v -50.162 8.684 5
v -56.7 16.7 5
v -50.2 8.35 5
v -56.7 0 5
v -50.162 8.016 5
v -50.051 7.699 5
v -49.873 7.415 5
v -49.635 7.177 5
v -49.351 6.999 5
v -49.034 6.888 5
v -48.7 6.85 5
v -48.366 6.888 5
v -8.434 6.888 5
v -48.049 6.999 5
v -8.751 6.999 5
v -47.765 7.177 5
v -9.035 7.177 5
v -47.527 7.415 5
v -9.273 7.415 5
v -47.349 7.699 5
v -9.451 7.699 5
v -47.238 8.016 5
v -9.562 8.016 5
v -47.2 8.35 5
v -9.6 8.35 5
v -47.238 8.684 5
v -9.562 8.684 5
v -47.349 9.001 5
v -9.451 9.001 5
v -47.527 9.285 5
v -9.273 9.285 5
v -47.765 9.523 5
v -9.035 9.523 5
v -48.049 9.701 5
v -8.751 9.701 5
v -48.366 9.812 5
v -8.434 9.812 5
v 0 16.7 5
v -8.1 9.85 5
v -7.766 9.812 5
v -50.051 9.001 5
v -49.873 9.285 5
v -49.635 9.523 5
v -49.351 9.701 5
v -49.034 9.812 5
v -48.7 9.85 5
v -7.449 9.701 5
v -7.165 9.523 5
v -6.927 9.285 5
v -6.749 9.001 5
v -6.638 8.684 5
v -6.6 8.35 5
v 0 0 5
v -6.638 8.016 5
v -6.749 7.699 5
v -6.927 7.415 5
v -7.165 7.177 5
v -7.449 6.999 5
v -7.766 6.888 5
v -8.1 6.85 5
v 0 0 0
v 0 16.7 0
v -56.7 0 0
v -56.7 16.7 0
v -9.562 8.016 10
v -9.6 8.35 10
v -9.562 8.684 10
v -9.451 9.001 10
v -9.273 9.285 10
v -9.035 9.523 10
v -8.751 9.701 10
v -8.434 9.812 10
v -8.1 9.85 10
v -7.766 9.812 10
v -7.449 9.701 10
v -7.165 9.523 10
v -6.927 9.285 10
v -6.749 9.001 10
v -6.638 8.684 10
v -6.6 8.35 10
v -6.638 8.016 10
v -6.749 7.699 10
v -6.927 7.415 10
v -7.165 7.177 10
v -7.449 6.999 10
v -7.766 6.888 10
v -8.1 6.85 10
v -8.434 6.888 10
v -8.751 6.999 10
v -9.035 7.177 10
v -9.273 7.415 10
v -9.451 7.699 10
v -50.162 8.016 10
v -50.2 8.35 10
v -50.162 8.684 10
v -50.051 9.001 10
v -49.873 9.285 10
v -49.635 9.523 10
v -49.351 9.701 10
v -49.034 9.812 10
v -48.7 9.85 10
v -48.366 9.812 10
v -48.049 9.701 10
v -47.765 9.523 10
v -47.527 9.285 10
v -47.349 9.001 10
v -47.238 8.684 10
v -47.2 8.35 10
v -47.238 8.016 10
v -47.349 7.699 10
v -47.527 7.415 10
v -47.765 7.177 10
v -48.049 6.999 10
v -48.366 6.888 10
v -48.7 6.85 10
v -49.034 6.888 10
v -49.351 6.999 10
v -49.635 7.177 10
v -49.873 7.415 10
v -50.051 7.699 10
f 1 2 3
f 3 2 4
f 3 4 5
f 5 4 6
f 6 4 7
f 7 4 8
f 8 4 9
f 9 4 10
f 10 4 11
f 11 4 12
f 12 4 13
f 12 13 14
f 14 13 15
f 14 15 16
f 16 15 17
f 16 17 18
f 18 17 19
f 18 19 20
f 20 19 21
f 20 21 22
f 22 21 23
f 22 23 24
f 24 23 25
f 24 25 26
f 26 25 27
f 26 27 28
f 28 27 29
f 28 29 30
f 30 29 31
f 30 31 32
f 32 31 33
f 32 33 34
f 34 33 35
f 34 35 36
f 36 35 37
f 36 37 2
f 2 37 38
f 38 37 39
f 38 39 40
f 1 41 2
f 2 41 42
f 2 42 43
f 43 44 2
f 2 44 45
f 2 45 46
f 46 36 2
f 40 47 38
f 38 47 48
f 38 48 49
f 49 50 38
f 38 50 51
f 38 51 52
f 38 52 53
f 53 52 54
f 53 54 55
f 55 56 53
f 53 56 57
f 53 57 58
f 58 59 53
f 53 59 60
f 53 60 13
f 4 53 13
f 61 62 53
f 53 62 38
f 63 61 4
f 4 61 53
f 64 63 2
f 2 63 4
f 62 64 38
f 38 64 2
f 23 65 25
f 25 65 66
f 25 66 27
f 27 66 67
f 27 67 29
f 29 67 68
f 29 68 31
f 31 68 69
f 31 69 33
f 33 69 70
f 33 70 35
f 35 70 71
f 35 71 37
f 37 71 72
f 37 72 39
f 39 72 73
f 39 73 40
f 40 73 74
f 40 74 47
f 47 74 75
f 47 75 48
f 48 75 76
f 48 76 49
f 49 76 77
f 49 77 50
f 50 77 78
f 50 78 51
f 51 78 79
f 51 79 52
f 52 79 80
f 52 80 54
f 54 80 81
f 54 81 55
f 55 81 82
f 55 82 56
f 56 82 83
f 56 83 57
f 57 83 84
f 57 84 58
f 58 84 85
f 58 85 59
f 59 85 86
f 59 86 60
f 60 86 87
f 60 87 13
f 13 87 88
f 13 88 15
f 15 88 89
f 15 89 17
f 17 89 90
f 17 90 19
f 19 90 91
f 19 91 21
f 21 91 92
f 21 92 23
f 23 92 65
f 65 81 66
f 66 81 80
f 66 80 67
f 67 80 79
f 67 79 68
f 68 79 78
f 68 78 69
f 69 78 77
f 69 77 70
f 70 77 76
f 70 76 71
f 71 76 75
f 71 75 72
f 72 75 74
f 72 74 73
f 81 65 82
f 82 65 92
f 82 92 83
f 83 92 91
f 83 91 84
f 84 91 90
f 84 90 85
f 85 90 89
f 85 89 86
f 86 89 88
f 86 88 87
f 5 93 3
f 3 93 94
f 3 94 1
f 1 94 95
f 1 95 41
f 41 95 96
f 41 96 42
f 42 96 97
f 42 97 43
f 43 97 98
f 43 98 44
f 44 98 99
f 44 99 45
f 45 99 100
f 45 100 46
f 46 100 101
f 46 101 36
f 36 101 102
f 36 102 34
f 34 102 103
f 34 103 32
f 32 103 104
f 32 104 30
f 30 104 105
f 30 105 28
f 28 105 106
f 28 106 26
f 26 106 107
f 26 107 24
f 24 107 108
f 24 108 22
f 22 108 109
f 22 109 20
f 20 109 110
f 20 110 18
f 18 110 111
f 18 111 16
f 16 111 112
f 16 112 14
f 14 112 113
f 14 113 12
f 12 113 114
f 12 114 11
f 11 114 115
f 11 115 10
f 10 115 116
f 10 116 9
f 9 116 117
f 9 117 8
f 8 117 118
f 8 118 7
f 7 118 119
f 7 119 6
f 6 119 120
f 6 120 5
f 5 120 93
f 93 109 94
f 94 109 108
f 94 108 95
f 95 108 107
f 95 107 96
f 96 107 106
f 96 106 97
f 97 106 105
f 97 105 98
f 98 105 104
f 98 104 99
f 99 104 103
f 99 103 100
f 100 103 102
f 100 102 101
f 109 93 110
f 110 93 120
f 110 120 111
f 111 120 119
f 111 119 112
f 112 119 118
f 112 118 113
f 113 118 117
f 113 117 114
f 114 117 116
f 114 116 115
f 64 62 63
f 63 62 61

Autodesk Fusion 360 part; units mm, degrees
sketch "Schizzo1" plane through (0, 0, 0) normal (0, 0, 1) x (1, 0, 0)
  line L0 (0, 0) -> (-56.8, 0)
  line L1 (-56.8, 0) -> (-56.8, 16.7)
  line L2 (-56.8, 16.7) -> (0, 16.7)
  line L3 (0, 16.7) -> (0, 0)
  line L4 (0, 0) -> (0, 8.35)
  line L5 (0, 8.35) -> (-56.8, 8.35)
  line L6 (-56.8, 8.35) -> (-48.7, 8.35)
  line L7 (0, 8.35) -> (-8.1, 8.35)
  circle A0 centre (-48.7, 8.35) radius 1.5
  circle A1 centre (-8.1, 8.35) radius 1.5
  dimension "d1" = 56.8
  dimension "d2" = 16.7
  dimension "d3" = 8.1
  dimension "d4" = 8.1
  dimension "d5" = 3
  dimension "d6" = 3
extrude "Estrusione1" add sketch "Schizzo1" along normal blind 10 contours L5 L7 A1 | L5 L7 A1 | L5 L6 A0 | L5 L6 A0 makes body 1 at (-48.4395, 6.8728, 6.6667) makes body 2 at (-6.6075, 8.4994, 6.6667)
sketch "Schizzo2" plane through (0, 0, 0) normal (0, 0, 1) x (1, 0, 0)
  line L0 (0, 0) -> (-56.7, 0)
  line L1 (-56.7, 0) -> (-56.7, 16.7)
  line L2 (-56.7, 16.7) -> (0, 16.7)
  line L3 (0, 16.7) -> (0, 0)
  dimension "d9" = 56.7
  dimension "d10" = 16.7
extrude "Estrusione2" add sketch "Schizzo2" along normal blind 5 bodies 1 2
